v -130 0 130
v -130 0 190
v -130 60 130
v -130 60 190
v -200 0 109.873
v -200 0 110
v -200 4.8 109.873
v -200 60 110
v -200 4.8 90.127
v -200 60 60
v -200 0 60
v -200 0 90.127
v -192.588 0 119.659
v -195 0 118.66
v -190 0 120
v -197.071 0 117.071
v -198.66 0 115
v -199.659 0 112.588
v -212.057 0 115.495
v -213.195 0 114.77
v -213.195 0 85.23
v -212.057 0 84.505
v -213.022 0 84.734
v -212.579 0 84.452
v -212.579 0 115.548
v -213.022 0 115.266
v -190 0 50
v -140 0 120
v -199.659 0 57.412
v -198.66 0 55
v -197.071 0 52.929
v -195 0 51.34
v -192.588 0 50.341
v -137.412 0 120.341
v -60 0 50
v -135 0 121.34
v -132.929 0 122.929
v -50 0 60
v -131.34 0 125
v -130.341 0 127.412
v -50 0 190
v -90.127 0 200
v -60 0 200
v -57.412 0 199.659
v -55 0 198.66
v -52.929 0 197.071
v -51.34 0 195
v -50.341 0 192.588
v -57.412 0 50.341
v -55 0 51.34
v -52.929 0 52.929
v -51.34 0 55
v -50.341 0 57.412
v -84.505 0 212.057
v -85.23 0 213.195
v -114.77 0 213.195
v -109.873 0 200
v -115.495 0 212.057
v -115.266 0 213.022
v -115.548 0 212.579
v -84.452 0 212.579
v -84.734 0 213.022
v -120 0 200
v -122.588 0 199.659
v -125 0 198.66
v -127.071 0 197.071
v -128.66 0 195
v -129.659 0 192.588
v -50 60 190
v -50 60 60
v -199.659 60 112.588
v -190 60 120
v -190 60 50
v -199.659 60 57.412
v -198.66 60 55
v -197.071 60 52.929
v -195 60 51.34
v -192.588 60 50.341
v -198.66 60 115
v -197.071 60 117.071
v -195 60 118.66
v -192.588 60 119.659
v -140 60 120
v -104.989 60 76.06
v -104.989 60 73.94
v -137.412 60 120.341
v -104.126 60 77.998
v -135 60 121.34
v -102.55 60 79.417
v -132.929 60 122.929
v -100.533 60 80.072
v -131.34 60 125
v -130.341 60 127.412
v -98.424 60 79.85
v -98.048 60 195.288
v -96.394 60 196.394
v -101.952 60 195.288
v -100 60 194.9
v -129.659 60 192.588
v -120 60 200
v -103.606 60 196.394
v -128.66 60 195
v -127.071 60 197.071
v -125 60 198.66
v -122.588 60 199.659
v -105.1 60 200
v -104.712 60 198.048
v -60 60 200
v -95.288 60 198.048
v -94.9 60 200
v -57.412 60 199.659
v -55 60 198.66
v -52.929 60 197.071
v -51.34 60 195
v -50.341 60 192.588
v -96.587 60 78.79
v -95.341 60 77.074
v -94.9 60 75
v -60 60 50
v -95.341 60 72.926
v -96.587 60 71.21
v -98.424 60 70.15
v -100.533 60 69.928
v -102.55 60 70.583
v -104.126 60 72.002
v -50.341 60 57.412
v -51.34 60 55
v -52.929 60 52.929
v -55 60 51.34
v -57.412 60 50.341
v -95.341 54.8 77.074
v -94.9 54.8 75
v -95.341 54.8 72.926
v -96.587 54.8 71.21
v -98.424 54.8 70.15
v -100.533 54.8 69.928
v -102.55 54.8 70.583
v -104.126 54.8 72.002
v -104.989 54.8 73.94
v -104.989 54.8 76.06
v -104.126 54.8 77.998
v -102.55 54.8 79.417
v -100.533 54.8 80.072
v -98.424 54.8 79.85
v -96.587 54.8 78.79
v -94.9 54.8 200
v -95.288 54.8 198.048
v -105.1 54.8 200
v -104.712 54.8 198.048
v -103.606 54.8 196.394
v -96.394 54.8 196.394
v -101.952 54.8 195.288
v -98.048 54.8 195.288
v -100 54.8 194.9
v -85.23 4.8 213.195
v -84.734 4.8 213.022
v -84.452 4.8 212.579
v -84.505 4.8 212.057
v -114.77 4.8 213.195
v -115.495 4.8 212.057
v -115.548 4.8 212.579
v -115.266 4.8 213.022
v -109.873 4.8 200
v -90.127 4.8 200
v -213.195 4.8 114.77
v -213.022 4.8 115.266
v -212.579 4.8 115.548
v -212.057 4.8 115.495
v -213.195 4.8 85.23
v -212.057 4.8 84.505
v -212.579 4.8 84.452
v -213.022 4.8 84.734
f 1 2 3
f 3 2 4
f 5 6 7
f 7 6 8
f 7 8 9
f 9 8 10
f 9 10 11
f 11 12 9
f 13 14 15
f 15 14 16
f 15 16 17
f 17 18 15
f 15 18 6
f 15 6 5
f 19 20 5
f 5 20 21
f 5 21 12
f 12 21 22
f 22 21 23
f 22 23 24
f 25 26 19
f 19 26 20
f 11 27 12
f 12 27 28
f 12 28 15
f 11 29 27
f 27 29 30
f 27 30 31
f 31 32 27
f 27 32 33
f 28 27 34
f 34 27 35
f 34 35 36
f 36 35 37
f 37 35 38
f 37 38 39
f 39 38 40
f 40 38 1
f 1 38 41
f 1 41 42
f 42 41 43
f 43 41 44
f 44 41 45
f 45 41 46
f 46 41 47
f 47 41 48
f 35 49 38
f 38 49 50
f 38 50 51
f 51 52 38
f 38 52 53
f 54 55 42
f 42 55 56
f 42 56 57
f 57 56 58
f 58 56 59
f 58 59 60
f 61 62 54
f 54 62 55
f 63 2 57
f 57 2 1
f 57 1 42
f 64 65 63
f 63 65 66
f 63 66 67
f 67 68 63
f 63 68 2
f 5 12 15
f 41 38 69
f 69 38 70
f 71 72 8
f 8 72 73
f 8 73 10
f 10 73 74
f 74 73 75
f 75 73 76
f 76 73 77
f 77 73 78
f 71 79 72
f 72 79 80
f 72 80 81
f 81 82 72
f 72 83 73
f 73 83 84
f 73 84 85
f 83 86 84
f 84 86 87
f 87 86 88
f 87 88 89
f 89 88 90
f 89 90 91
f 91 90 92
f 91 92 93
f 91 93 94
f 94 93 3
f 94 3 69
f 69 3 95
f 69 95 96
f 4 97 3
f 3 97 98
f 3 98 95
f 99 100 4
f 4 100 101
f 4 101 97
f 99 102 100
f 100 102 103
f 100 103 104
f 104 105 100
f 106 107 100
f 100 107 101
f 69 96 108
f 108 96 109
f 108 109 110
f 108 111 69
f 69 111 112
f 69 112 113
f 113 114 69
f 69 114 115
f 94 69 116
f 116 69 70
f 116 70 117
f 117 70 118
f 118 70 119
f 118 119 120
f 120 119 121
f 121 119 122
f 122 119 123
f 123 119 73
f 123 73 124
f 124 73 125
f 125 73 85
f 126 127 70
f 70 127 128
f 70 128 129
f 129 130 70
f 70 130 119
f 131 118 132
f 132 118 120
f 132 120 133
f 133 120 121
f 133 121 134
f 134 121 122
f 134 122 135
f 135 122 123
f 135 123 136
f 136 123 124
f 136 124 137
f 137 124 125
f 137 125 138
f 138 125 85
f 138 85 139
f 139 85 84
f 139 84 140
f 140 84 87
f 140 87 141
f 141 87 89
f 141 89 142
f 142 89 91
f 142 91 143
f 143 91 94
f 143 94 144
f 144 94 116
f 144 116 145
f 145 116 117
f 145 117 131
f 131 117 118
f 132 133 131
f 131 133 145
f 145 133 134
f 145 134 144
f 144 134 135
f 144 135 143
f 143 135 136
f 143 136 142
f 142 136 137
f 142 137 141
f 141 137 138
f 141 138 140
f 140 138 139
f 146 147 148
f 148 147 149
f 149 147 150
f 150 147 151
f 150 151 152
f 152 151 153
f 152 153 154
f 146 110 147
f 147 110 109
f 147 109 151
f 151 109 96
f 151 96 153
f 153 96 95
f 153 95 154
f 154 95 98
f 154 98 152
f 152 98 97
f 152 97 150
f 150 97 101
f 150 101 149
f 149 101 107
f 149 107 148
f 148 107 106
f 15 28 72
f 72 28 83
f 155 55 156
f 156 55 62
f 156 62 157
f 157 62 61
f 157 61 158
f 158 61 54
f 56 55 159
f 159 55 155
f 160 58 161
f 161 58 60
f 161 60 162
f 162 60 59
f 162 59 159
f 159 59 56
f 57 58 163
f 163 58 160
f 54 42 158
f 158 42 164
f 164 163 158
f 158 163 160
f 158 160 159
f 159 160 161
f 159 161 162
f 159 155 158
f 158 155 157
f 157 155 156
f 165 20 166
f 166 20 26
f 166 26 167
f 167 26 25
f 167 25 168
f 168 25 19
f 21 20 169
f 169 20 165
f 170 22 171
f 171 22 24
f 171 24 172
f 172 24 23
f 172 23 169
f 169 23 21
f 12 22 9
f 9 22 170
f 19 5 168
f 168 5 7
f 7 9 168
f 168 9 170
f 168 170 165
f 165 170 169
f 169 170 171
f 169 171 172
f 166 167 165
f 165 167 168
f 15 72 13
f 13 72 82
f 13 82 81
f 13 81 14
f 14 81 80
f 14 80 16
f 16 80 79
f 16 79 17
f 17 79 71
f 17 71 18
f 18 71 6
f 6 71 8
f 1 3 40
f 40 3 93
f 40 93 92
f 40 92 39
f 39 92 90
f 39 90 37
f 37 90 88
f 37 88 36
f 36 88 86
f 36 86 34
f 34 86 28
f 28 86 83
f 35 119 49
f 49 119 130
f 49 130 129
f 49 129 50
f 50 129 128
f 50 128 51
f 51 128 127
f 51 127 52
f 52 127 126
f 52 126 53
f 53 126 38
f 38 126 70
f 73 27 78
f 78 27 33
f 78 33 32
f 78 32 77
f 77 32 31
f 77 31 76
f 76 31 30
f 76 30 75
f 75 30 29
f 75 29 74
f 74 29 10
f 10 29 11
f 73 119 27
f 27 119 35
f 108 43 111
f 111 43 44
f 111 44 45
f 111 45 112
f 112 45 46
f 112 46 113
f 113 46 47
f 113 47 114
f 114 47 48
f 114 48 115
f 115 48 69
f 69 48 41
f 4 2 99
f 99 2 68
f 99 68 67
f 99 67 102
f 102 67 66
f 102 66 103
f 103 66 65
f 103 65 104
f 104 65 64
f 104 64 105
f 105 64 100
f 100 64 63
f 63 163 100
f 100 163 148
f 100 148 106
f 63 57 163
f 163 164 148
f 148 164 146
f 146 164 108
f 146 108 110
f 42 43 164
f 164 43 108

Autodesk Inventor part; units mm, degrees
ref_plane "YZ Plane" through (0, 0, 0) normal (1, 0, 0) x (0, 1, 0)
ref_plane "XZ Plane" through (0, 0, 0) normal (0, 1, 0) x (-1, 0, 0)
ref_plane "XY Plane" through (0, 0, 0) normal (0, 0, 1) x (1, 0, 0)
sketch "Sketch1" plane through (0, 0, 0) normal (0, 1, 0) x (-1, 0, 0)
  line L0 (0, 0) -> (200, 0)
  line L1 (200, 0) -> (200, 200)
  line L2 (200, 200) -> (0, 200)
  line L3 (0, 200) -> (0, 0)
  line L4 (110, 199.8) -> (110, 213.2303) construction
  line L5 (100, 213.1946) -> (114.7696, 213.1946)
  arc A0 (115.4946, 212.0565) -> (114.7696, 213.1946) centre (114.7696, 212.3946) ccw
  line L6 (115.4946, 212.0565) -> (109.8726, 200)
  line L7 (109.8726, 200) -> (90.1274, 200)
  line L8 (90.1274, 200) -> (84.5054, 212.0565)
  arc A1 (85.2304, 213.1946) -> (84.5054, 212.0565) centre (85.2304, 212.3946) ccw
  line L9 (85.2304, 213.1946) -> (100, 213.1946)
  line L10 (200, 89.8726) -> (200, 110.1274)
  line L11 (200, 90.1274) -> (200, 109.8726)
  line L12 (200, 109.8726) -> (212.0565, 115.4946)
  arc A2 (213.1946, 114.7696) -> (212.0565, 115.4946) centre (212.3946, 114.7696) ccw
  line L13 (213.1946, 114.7696) -> (213.1946, 100)
  line L14 (199.8, 90) -> (213.2303, 90) construction
  line L15 (212.0565, 84.5054) -> (200, 90.1274)
  line L16 (213.1946, 100) -> (213.1946, 85.2304)
  arc A3 (212.0565, 84.5054) -> (213.1946, 85.2304) centre (212.3946, 85.2304) ccw
  point P0 (0, 100)
  point P1 (0, 100)
  point P2 (0, 100)
  point P3 (0, 100)
  point P4 (100, 200)
  point P5 (100, 200)
  point P6 (100, 200)
  point P7 (100, 200)
  point P8 (100, 200)
  point P9 (100, 200)
  point P10 (200, 100)
  point P11 (200, 100)
  point P12 (200, 100)
  point P13 (200, 100)
  point P14 (200, 100)
  point P15 (200, 100)
  point P16 (200, 100)
  point P17 (200, 100)
  point P18 (200, 100)
  point P19 (200, 100)
  dimension "d0" = 200
  dimension "d1" = 200
extrude "Extrusion1" add sketch "Sketch1" along normal blind 60 contours L3 L2 L1 L0
extrude "Extrusion3" add sketch "Sketch1" along normal blind 4.8 contours L8 A1 L9 L5 A0 L6 L2 | L1 L12 A2 L13 L16 A3 L15
sketch "Sketch2" plane through (0, 60, 0) normal (0, 1, 0) x (1, 0, 0)
  line L0 (0, 0) -> (-200, 0) projected
  circle A0 centre (-100, -75) radius 5.1
  circle A1 centre (-100, -200) radius 5.1
  dimension "d11" = 10.2
  dimension "d12" = 10.2
extrude "Extrusion4" cut sketch "Sketch2" against normal blind 5.2
sketch "Sketch3" plane through (0, 60, 0) normal (0, 1, 0) x (1, 0, 0)
  line L0 (0, -200) -> (0, 0) projected
  line L1 (-94.9, -200) -> (0, -200) projected
  line L2 (0, 0) -> (-70, 0)
  line L3 (-70, 0) -> (-70, -200)
  line L4 (-70, -200) -> (0, -200)
  line L5 (0, -200) -> (0, 0)
  line L6 (-200, 0) -> (-200, -200) projected
  line L7 (-200, 0) -> (0, 0)
  line L8 (0, 0) -> (0, -50)
  line L9 (0, -50) -> (-200, -50)
  line L10 (-200, -50) -> (-200, 0)
  line L11 (-200, -200) -> (-130, -200)
  line L12 (-130, -200) -> (-130, -120)
  line L13 (-130, -120) -> (-200, -120)
  line L14 (-200, -120) -> (-200, -200)
  point P0 (-70, -50)
  dimension "d17" = 70
  dimension "d18" = 50
  dimension "d19" = 70
  dimension "d20" = 80
extrude "Extrusion6" cut sketch "Sketch3" against normal blind 60
sketch "Sketch4" plane through (-70, 60, 200) normal (1, 0, 0) x (0, 0, -1)
  line L0 (150, -60) -> (109.8726, -60) projected
  line L1 (0, 0) -> (150, 0)
  line L2 (150, 0) -> (150, -60)
  line L3 (150, -60) -> (0, -60)
  line L4 (0, -60) -> (0, 0)
  point P0 (200, -60)
extrude "Extrusion7" add sketch "Sketch4" along normal blind 20
fillet "Fillet2" radius 10 6 edges at (-50, 30, 50) (-200, 30, 50) (-50, 30, 200) (-130, 30, 200) (-130, 30, 120) (-200, 30, 120)
properties part number "Area øv1"
